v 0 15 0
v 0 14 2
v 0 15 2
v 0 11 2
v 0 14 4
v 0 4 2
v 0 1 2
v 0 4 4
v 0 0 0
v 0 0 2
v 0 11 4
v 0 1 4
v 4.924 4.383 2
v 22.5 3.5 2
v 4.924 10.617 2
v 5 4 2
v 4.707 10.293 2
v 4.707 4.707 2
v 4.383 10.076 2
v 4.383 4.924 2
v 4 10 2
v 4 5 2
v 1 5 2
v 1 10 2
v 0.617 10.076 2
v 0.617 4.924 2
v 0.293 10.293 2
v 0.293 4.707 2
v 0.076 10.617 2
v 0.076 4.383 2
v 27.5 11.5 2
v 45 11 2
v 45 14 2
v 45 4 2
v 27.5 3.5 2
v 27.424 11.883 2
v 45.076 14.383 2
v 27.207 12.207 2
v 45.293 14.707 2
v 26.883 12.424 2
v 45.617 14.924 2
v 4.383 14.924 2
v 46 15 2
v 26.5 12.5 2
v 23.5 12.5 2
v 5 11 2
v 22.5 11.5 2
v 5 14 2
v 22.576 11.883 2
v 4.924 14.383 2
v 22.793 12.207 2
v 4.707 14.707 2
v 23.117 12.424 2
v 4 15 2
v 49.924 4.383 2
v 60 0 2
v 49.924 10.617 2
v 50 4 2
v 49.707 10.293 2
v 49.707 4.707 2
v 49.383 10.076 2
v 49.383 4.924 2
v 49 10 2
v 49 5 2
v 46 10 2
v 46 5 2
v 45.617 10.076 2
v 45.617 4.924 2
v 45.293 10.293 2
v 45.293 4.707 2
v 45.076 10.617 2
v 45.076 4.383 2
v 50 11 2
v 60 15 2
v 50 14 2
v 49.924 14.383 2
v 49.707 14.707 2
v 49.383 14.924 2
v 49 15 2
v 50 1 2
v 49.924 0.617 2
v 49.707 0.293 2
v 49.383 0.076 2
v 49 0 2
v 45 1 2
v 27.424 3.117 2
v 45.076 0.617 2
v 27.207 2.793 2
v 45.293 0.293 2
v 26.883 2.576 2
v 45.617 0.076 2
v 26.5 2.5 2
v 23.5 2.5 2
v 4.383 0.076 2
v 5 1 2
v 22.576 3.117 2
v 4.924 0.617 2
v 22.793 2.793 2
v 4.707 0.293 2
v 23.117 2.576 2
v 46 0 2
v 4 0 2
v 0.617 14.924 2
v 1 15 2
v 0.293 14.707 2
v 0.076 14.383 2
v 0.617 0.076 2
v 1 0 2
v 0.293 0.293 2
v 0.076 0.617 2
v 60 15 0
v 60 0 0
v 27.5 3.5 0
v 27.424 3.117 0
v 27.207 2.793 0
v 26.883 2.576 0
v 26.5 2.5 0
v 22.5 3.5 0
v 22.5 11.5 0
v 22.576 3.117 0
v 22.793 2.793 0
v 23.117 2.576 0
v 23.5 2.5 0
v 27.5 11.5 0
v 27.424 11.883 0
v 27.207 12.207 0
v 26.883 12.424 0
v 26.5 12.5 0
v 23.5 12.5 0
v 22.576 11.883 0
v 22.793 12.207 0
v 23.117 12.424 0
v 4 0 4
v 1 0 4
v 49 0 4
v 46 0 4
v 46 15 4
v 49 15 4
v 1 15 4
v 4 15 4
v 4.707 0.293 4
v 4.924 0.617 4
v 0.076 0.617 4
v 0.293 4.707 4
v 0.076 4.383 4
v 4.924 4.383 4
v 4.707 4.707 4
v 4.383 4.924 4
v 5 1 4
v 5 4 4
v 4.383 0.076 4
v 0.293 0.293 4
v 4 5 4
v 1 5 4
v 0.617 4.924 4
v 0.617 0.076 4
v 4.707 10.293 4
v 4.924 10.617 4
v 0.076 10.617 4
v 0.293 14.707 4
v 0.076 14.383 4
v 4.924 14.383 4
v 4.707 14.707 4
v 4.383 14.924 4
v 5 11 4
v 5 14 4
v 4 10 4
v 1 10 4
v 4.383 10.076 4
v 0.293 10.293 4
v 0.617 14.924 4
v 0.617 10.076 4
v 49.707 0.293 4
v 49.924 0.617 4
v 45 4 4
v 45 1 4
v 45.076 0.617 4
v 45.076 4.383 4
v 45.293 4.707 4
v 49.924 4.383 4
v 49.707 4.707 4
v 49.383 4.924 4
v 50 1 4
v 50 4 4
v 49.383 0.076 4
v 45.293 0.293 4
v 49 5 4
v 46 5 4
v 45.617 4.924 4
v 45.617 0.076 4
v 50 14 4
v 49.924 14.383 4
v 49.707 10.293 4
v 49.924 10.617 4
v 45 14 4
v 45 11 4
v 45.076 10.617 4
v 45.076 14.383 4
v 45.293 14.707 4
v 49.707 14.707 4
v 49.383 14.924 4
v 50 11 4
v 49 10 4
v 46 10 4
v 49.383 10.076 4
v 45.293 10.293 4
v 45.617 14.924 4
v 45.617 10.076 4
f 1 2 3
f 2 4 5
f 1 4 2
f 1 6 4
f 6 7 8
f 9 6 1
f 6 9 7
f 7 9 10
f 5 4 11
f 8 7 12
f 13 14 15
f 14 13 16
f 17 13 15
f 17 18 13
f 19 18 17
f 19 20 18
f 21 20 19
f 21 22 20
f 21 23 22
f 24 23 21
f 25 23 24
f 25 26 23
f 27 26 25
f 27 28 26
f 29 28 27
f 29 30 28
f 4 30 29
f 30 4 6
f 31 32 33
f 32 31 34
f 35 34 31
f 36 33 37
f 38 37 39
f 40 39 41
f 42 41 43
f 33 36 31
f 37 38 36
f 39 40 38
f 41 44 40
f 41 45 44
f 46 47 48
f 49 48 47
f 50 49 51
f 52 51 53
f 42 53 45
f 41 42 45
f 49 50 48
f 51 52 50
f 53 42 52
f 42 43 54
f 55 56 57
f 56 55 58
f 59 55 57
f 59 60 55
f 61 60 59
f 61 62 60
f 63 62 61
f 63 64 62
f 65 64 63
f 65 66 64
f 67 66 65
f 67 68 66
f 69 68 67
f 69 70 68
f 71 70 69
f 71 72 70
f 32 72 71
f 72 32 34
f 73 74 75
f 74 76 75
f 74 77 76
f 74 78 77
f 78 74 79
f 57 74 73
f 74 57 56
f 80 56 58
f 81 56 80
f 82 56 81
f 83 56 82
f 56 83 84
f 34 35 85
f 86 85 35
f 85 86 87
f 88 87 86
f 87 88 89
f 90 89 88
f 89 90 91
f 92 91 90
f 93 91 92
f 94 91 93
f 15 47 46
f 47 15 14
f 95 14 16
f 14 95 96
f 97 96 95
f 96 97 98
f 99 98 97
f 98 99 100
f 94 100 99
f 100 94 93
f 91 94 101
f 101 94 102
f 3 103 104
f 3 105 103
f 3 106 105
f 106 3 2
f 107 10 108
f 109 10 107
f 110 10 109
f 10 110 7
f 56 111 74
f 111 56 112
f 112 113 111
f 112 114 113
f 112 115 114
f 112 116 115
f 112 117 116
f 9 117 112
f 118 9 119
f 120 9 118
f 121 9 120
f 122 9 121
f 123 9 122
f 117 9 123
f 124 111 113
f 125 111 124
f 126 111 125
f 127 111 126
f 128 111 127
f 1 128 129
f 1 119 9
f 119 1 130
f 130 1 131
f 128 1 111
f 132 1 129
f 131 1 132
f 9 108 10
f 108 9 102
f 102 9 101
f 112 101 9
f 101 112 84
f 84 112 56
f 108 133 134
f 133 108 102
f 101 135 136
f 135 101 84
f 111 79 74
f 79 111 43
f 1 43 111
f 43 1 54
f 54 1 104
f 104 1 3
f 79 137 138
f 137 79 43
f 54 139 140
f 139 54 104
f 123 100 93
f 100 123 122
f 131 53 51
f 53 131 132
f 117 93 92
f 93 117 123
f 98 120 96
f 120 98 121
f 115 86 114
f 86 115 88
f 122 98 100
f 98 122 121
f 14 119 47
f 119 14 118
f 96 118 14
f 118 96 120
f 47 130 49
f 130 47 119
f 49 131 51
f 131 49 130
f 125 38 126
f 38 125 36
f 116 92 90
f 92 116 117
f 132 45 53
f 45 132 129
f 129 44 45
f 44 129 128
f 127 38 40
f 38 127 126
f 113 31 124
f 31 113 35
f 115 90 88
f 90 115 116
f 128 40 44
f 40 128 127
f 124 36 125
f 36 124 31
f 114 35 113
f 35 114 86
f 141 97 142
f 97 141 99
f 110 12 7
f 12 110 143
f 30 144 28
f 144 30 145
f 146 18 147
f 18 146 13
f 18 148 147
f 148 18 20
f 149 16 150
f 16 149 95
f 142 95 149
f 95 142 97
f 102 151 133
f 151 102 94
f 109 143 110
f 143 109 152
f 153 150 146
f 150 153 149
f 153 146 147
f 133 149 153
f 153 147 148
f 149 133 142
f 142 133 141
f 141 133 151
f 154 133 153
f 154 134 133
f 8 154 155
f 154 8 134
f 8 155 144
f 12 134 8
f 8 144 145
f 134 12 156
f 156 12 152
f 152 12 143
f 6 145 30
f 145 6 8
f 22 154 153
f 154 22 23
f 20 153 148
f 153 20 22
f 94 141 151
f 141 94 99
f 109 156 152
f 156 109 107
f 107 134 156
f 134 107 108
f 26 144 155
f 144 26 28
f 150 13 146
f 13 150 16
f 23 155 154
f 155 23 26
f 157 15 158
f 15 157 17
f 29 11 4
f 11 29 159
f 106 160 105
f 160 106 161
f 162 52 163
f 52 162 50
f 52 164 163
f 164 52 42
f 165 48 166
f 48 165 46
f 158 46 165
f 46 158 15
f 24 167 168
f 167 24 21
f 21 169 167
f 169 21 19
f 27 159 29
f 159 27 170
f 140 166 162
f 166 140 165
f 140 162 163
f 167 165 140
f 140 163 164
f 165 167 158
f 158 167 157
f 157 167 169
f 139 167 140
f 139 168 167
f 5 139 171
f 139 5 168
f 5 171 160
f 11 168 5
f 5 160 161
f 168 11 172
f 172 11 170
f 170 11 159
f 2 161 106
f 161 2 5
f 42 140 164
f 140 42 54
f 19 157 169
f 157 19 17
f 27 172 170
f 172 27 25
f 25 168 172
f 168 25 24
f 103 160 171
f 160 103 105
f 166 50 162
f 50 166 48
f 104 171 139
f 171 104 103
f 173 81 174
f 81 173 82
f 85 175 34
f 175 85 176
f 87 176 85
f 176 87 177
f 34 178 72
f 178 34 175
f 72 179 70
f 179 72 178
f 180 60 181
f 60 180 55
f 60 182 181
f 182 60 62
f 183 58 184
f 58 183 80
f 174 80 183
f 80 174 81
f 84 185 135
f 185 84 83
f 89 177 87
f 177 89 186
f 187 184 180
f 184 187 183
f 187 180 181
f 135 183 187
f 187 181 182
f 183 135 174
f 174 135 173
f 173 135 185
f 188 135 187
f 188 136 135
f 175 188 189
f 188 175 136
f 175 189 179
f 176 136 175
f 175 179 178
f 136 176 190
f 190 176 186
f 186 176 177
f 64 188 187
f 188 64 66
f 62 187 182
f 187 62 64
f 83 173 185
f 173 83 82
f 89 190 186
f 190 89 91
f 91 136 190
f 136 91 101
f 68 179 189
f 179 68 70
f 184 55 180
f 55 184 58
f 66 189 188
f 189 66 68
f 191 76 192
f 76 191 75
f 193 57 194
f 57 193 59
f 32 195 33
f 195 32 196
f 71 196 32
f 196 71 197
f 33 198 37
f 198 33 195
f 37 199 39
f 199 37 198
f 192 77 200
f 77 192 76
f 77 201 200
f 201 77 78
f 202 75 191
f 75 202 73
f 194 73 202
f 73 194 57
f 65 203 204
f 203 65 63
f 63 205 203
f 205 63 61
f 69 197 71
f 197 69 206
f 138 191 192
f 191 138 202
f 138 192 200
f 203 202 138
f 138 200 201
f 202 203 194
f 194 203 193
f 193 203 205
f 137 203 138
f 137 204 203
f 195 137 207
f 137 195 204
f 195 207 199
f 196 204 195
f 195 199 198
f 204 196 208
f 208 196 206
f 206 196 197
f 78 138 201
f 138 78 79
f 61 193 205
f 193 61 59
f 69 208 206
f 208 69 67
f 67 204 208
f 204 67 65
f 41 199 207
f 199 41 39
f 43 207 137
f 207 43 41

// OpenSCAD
// file: basics.scad
// basics 1

$fn = 16;

cellRadius = 1.0;

cellSize = 5.0;

layerHeight = 2.0;

pinOffset = 0.15;

module cellCorner(height = layerHeight) {
    cylinder(h = height, r = cellRadius);
}

module cell(height = layerHeight) {
    translate([0, 0, 0]) {
        hull() {
            translate([cellRadius,            cellRadius, 0])            cellCorner(height);
            translate([cellSize - cellRadius, cellRadius, 0])            cellCorner(height);
            translate([cellRadius,            cellSize - cellRadius, 0]) cellCorner(height);
            translate([cellSize - cellRadius, cellSize - cellRadius, 0]) cellCorner(height);
        }
    }
}

module pin(pinOffset = 0) {
    cylinder(h = layerHeight + 0.2, r = cellRadius * 1.5 - pinOffset);
}
// main file
// a - d blech 3

$fn = 16;

cellRadius = 1.0;

cellSize = 5.0;

layerHeight = 2.0;

blechLength = cellSize * 12;
blechWidth  = cellSize * 3;

cellCenter = cellSize / 2;

holeOffset = 0.15;

use <basics.scad>


module dBlech() {
    difference() {
        translate([0, 0, 0]) color("yellow") cube([blechLength, blechWidth, layerHeight]);
        translate([cellSize * 4.5, cellSize / 2, -0.1]) color("red") dualYCell();
    }
    translate([0 , 0 , layerHeight]) cell();
    translate([0, cellSize * 2, layerHeight]) cell();
    translate([cellSize * 9 , 0 , layerHeight]) cell();
    translate([cellSize * 9, cellSize * 2, layerHeight]) cell();
}

module dualYCell() {
    hull() {
        translate([0, 0       , 0]) cell(layerHeight + 0.2);
        translate([0, cellSize, 0]) cell(layerHeight + 0.2);
    }
}

dBlech();



// hole center
//translate([0,            , 0, layerHeight]) color("red") cube([cellSize * 4.5, cellSize, layerHeight]);
//translate([cellSize * 4.5, 0, layerHeight]) color("blue") cube([cellSize * 4.5, cellSize, layerHeight]);
